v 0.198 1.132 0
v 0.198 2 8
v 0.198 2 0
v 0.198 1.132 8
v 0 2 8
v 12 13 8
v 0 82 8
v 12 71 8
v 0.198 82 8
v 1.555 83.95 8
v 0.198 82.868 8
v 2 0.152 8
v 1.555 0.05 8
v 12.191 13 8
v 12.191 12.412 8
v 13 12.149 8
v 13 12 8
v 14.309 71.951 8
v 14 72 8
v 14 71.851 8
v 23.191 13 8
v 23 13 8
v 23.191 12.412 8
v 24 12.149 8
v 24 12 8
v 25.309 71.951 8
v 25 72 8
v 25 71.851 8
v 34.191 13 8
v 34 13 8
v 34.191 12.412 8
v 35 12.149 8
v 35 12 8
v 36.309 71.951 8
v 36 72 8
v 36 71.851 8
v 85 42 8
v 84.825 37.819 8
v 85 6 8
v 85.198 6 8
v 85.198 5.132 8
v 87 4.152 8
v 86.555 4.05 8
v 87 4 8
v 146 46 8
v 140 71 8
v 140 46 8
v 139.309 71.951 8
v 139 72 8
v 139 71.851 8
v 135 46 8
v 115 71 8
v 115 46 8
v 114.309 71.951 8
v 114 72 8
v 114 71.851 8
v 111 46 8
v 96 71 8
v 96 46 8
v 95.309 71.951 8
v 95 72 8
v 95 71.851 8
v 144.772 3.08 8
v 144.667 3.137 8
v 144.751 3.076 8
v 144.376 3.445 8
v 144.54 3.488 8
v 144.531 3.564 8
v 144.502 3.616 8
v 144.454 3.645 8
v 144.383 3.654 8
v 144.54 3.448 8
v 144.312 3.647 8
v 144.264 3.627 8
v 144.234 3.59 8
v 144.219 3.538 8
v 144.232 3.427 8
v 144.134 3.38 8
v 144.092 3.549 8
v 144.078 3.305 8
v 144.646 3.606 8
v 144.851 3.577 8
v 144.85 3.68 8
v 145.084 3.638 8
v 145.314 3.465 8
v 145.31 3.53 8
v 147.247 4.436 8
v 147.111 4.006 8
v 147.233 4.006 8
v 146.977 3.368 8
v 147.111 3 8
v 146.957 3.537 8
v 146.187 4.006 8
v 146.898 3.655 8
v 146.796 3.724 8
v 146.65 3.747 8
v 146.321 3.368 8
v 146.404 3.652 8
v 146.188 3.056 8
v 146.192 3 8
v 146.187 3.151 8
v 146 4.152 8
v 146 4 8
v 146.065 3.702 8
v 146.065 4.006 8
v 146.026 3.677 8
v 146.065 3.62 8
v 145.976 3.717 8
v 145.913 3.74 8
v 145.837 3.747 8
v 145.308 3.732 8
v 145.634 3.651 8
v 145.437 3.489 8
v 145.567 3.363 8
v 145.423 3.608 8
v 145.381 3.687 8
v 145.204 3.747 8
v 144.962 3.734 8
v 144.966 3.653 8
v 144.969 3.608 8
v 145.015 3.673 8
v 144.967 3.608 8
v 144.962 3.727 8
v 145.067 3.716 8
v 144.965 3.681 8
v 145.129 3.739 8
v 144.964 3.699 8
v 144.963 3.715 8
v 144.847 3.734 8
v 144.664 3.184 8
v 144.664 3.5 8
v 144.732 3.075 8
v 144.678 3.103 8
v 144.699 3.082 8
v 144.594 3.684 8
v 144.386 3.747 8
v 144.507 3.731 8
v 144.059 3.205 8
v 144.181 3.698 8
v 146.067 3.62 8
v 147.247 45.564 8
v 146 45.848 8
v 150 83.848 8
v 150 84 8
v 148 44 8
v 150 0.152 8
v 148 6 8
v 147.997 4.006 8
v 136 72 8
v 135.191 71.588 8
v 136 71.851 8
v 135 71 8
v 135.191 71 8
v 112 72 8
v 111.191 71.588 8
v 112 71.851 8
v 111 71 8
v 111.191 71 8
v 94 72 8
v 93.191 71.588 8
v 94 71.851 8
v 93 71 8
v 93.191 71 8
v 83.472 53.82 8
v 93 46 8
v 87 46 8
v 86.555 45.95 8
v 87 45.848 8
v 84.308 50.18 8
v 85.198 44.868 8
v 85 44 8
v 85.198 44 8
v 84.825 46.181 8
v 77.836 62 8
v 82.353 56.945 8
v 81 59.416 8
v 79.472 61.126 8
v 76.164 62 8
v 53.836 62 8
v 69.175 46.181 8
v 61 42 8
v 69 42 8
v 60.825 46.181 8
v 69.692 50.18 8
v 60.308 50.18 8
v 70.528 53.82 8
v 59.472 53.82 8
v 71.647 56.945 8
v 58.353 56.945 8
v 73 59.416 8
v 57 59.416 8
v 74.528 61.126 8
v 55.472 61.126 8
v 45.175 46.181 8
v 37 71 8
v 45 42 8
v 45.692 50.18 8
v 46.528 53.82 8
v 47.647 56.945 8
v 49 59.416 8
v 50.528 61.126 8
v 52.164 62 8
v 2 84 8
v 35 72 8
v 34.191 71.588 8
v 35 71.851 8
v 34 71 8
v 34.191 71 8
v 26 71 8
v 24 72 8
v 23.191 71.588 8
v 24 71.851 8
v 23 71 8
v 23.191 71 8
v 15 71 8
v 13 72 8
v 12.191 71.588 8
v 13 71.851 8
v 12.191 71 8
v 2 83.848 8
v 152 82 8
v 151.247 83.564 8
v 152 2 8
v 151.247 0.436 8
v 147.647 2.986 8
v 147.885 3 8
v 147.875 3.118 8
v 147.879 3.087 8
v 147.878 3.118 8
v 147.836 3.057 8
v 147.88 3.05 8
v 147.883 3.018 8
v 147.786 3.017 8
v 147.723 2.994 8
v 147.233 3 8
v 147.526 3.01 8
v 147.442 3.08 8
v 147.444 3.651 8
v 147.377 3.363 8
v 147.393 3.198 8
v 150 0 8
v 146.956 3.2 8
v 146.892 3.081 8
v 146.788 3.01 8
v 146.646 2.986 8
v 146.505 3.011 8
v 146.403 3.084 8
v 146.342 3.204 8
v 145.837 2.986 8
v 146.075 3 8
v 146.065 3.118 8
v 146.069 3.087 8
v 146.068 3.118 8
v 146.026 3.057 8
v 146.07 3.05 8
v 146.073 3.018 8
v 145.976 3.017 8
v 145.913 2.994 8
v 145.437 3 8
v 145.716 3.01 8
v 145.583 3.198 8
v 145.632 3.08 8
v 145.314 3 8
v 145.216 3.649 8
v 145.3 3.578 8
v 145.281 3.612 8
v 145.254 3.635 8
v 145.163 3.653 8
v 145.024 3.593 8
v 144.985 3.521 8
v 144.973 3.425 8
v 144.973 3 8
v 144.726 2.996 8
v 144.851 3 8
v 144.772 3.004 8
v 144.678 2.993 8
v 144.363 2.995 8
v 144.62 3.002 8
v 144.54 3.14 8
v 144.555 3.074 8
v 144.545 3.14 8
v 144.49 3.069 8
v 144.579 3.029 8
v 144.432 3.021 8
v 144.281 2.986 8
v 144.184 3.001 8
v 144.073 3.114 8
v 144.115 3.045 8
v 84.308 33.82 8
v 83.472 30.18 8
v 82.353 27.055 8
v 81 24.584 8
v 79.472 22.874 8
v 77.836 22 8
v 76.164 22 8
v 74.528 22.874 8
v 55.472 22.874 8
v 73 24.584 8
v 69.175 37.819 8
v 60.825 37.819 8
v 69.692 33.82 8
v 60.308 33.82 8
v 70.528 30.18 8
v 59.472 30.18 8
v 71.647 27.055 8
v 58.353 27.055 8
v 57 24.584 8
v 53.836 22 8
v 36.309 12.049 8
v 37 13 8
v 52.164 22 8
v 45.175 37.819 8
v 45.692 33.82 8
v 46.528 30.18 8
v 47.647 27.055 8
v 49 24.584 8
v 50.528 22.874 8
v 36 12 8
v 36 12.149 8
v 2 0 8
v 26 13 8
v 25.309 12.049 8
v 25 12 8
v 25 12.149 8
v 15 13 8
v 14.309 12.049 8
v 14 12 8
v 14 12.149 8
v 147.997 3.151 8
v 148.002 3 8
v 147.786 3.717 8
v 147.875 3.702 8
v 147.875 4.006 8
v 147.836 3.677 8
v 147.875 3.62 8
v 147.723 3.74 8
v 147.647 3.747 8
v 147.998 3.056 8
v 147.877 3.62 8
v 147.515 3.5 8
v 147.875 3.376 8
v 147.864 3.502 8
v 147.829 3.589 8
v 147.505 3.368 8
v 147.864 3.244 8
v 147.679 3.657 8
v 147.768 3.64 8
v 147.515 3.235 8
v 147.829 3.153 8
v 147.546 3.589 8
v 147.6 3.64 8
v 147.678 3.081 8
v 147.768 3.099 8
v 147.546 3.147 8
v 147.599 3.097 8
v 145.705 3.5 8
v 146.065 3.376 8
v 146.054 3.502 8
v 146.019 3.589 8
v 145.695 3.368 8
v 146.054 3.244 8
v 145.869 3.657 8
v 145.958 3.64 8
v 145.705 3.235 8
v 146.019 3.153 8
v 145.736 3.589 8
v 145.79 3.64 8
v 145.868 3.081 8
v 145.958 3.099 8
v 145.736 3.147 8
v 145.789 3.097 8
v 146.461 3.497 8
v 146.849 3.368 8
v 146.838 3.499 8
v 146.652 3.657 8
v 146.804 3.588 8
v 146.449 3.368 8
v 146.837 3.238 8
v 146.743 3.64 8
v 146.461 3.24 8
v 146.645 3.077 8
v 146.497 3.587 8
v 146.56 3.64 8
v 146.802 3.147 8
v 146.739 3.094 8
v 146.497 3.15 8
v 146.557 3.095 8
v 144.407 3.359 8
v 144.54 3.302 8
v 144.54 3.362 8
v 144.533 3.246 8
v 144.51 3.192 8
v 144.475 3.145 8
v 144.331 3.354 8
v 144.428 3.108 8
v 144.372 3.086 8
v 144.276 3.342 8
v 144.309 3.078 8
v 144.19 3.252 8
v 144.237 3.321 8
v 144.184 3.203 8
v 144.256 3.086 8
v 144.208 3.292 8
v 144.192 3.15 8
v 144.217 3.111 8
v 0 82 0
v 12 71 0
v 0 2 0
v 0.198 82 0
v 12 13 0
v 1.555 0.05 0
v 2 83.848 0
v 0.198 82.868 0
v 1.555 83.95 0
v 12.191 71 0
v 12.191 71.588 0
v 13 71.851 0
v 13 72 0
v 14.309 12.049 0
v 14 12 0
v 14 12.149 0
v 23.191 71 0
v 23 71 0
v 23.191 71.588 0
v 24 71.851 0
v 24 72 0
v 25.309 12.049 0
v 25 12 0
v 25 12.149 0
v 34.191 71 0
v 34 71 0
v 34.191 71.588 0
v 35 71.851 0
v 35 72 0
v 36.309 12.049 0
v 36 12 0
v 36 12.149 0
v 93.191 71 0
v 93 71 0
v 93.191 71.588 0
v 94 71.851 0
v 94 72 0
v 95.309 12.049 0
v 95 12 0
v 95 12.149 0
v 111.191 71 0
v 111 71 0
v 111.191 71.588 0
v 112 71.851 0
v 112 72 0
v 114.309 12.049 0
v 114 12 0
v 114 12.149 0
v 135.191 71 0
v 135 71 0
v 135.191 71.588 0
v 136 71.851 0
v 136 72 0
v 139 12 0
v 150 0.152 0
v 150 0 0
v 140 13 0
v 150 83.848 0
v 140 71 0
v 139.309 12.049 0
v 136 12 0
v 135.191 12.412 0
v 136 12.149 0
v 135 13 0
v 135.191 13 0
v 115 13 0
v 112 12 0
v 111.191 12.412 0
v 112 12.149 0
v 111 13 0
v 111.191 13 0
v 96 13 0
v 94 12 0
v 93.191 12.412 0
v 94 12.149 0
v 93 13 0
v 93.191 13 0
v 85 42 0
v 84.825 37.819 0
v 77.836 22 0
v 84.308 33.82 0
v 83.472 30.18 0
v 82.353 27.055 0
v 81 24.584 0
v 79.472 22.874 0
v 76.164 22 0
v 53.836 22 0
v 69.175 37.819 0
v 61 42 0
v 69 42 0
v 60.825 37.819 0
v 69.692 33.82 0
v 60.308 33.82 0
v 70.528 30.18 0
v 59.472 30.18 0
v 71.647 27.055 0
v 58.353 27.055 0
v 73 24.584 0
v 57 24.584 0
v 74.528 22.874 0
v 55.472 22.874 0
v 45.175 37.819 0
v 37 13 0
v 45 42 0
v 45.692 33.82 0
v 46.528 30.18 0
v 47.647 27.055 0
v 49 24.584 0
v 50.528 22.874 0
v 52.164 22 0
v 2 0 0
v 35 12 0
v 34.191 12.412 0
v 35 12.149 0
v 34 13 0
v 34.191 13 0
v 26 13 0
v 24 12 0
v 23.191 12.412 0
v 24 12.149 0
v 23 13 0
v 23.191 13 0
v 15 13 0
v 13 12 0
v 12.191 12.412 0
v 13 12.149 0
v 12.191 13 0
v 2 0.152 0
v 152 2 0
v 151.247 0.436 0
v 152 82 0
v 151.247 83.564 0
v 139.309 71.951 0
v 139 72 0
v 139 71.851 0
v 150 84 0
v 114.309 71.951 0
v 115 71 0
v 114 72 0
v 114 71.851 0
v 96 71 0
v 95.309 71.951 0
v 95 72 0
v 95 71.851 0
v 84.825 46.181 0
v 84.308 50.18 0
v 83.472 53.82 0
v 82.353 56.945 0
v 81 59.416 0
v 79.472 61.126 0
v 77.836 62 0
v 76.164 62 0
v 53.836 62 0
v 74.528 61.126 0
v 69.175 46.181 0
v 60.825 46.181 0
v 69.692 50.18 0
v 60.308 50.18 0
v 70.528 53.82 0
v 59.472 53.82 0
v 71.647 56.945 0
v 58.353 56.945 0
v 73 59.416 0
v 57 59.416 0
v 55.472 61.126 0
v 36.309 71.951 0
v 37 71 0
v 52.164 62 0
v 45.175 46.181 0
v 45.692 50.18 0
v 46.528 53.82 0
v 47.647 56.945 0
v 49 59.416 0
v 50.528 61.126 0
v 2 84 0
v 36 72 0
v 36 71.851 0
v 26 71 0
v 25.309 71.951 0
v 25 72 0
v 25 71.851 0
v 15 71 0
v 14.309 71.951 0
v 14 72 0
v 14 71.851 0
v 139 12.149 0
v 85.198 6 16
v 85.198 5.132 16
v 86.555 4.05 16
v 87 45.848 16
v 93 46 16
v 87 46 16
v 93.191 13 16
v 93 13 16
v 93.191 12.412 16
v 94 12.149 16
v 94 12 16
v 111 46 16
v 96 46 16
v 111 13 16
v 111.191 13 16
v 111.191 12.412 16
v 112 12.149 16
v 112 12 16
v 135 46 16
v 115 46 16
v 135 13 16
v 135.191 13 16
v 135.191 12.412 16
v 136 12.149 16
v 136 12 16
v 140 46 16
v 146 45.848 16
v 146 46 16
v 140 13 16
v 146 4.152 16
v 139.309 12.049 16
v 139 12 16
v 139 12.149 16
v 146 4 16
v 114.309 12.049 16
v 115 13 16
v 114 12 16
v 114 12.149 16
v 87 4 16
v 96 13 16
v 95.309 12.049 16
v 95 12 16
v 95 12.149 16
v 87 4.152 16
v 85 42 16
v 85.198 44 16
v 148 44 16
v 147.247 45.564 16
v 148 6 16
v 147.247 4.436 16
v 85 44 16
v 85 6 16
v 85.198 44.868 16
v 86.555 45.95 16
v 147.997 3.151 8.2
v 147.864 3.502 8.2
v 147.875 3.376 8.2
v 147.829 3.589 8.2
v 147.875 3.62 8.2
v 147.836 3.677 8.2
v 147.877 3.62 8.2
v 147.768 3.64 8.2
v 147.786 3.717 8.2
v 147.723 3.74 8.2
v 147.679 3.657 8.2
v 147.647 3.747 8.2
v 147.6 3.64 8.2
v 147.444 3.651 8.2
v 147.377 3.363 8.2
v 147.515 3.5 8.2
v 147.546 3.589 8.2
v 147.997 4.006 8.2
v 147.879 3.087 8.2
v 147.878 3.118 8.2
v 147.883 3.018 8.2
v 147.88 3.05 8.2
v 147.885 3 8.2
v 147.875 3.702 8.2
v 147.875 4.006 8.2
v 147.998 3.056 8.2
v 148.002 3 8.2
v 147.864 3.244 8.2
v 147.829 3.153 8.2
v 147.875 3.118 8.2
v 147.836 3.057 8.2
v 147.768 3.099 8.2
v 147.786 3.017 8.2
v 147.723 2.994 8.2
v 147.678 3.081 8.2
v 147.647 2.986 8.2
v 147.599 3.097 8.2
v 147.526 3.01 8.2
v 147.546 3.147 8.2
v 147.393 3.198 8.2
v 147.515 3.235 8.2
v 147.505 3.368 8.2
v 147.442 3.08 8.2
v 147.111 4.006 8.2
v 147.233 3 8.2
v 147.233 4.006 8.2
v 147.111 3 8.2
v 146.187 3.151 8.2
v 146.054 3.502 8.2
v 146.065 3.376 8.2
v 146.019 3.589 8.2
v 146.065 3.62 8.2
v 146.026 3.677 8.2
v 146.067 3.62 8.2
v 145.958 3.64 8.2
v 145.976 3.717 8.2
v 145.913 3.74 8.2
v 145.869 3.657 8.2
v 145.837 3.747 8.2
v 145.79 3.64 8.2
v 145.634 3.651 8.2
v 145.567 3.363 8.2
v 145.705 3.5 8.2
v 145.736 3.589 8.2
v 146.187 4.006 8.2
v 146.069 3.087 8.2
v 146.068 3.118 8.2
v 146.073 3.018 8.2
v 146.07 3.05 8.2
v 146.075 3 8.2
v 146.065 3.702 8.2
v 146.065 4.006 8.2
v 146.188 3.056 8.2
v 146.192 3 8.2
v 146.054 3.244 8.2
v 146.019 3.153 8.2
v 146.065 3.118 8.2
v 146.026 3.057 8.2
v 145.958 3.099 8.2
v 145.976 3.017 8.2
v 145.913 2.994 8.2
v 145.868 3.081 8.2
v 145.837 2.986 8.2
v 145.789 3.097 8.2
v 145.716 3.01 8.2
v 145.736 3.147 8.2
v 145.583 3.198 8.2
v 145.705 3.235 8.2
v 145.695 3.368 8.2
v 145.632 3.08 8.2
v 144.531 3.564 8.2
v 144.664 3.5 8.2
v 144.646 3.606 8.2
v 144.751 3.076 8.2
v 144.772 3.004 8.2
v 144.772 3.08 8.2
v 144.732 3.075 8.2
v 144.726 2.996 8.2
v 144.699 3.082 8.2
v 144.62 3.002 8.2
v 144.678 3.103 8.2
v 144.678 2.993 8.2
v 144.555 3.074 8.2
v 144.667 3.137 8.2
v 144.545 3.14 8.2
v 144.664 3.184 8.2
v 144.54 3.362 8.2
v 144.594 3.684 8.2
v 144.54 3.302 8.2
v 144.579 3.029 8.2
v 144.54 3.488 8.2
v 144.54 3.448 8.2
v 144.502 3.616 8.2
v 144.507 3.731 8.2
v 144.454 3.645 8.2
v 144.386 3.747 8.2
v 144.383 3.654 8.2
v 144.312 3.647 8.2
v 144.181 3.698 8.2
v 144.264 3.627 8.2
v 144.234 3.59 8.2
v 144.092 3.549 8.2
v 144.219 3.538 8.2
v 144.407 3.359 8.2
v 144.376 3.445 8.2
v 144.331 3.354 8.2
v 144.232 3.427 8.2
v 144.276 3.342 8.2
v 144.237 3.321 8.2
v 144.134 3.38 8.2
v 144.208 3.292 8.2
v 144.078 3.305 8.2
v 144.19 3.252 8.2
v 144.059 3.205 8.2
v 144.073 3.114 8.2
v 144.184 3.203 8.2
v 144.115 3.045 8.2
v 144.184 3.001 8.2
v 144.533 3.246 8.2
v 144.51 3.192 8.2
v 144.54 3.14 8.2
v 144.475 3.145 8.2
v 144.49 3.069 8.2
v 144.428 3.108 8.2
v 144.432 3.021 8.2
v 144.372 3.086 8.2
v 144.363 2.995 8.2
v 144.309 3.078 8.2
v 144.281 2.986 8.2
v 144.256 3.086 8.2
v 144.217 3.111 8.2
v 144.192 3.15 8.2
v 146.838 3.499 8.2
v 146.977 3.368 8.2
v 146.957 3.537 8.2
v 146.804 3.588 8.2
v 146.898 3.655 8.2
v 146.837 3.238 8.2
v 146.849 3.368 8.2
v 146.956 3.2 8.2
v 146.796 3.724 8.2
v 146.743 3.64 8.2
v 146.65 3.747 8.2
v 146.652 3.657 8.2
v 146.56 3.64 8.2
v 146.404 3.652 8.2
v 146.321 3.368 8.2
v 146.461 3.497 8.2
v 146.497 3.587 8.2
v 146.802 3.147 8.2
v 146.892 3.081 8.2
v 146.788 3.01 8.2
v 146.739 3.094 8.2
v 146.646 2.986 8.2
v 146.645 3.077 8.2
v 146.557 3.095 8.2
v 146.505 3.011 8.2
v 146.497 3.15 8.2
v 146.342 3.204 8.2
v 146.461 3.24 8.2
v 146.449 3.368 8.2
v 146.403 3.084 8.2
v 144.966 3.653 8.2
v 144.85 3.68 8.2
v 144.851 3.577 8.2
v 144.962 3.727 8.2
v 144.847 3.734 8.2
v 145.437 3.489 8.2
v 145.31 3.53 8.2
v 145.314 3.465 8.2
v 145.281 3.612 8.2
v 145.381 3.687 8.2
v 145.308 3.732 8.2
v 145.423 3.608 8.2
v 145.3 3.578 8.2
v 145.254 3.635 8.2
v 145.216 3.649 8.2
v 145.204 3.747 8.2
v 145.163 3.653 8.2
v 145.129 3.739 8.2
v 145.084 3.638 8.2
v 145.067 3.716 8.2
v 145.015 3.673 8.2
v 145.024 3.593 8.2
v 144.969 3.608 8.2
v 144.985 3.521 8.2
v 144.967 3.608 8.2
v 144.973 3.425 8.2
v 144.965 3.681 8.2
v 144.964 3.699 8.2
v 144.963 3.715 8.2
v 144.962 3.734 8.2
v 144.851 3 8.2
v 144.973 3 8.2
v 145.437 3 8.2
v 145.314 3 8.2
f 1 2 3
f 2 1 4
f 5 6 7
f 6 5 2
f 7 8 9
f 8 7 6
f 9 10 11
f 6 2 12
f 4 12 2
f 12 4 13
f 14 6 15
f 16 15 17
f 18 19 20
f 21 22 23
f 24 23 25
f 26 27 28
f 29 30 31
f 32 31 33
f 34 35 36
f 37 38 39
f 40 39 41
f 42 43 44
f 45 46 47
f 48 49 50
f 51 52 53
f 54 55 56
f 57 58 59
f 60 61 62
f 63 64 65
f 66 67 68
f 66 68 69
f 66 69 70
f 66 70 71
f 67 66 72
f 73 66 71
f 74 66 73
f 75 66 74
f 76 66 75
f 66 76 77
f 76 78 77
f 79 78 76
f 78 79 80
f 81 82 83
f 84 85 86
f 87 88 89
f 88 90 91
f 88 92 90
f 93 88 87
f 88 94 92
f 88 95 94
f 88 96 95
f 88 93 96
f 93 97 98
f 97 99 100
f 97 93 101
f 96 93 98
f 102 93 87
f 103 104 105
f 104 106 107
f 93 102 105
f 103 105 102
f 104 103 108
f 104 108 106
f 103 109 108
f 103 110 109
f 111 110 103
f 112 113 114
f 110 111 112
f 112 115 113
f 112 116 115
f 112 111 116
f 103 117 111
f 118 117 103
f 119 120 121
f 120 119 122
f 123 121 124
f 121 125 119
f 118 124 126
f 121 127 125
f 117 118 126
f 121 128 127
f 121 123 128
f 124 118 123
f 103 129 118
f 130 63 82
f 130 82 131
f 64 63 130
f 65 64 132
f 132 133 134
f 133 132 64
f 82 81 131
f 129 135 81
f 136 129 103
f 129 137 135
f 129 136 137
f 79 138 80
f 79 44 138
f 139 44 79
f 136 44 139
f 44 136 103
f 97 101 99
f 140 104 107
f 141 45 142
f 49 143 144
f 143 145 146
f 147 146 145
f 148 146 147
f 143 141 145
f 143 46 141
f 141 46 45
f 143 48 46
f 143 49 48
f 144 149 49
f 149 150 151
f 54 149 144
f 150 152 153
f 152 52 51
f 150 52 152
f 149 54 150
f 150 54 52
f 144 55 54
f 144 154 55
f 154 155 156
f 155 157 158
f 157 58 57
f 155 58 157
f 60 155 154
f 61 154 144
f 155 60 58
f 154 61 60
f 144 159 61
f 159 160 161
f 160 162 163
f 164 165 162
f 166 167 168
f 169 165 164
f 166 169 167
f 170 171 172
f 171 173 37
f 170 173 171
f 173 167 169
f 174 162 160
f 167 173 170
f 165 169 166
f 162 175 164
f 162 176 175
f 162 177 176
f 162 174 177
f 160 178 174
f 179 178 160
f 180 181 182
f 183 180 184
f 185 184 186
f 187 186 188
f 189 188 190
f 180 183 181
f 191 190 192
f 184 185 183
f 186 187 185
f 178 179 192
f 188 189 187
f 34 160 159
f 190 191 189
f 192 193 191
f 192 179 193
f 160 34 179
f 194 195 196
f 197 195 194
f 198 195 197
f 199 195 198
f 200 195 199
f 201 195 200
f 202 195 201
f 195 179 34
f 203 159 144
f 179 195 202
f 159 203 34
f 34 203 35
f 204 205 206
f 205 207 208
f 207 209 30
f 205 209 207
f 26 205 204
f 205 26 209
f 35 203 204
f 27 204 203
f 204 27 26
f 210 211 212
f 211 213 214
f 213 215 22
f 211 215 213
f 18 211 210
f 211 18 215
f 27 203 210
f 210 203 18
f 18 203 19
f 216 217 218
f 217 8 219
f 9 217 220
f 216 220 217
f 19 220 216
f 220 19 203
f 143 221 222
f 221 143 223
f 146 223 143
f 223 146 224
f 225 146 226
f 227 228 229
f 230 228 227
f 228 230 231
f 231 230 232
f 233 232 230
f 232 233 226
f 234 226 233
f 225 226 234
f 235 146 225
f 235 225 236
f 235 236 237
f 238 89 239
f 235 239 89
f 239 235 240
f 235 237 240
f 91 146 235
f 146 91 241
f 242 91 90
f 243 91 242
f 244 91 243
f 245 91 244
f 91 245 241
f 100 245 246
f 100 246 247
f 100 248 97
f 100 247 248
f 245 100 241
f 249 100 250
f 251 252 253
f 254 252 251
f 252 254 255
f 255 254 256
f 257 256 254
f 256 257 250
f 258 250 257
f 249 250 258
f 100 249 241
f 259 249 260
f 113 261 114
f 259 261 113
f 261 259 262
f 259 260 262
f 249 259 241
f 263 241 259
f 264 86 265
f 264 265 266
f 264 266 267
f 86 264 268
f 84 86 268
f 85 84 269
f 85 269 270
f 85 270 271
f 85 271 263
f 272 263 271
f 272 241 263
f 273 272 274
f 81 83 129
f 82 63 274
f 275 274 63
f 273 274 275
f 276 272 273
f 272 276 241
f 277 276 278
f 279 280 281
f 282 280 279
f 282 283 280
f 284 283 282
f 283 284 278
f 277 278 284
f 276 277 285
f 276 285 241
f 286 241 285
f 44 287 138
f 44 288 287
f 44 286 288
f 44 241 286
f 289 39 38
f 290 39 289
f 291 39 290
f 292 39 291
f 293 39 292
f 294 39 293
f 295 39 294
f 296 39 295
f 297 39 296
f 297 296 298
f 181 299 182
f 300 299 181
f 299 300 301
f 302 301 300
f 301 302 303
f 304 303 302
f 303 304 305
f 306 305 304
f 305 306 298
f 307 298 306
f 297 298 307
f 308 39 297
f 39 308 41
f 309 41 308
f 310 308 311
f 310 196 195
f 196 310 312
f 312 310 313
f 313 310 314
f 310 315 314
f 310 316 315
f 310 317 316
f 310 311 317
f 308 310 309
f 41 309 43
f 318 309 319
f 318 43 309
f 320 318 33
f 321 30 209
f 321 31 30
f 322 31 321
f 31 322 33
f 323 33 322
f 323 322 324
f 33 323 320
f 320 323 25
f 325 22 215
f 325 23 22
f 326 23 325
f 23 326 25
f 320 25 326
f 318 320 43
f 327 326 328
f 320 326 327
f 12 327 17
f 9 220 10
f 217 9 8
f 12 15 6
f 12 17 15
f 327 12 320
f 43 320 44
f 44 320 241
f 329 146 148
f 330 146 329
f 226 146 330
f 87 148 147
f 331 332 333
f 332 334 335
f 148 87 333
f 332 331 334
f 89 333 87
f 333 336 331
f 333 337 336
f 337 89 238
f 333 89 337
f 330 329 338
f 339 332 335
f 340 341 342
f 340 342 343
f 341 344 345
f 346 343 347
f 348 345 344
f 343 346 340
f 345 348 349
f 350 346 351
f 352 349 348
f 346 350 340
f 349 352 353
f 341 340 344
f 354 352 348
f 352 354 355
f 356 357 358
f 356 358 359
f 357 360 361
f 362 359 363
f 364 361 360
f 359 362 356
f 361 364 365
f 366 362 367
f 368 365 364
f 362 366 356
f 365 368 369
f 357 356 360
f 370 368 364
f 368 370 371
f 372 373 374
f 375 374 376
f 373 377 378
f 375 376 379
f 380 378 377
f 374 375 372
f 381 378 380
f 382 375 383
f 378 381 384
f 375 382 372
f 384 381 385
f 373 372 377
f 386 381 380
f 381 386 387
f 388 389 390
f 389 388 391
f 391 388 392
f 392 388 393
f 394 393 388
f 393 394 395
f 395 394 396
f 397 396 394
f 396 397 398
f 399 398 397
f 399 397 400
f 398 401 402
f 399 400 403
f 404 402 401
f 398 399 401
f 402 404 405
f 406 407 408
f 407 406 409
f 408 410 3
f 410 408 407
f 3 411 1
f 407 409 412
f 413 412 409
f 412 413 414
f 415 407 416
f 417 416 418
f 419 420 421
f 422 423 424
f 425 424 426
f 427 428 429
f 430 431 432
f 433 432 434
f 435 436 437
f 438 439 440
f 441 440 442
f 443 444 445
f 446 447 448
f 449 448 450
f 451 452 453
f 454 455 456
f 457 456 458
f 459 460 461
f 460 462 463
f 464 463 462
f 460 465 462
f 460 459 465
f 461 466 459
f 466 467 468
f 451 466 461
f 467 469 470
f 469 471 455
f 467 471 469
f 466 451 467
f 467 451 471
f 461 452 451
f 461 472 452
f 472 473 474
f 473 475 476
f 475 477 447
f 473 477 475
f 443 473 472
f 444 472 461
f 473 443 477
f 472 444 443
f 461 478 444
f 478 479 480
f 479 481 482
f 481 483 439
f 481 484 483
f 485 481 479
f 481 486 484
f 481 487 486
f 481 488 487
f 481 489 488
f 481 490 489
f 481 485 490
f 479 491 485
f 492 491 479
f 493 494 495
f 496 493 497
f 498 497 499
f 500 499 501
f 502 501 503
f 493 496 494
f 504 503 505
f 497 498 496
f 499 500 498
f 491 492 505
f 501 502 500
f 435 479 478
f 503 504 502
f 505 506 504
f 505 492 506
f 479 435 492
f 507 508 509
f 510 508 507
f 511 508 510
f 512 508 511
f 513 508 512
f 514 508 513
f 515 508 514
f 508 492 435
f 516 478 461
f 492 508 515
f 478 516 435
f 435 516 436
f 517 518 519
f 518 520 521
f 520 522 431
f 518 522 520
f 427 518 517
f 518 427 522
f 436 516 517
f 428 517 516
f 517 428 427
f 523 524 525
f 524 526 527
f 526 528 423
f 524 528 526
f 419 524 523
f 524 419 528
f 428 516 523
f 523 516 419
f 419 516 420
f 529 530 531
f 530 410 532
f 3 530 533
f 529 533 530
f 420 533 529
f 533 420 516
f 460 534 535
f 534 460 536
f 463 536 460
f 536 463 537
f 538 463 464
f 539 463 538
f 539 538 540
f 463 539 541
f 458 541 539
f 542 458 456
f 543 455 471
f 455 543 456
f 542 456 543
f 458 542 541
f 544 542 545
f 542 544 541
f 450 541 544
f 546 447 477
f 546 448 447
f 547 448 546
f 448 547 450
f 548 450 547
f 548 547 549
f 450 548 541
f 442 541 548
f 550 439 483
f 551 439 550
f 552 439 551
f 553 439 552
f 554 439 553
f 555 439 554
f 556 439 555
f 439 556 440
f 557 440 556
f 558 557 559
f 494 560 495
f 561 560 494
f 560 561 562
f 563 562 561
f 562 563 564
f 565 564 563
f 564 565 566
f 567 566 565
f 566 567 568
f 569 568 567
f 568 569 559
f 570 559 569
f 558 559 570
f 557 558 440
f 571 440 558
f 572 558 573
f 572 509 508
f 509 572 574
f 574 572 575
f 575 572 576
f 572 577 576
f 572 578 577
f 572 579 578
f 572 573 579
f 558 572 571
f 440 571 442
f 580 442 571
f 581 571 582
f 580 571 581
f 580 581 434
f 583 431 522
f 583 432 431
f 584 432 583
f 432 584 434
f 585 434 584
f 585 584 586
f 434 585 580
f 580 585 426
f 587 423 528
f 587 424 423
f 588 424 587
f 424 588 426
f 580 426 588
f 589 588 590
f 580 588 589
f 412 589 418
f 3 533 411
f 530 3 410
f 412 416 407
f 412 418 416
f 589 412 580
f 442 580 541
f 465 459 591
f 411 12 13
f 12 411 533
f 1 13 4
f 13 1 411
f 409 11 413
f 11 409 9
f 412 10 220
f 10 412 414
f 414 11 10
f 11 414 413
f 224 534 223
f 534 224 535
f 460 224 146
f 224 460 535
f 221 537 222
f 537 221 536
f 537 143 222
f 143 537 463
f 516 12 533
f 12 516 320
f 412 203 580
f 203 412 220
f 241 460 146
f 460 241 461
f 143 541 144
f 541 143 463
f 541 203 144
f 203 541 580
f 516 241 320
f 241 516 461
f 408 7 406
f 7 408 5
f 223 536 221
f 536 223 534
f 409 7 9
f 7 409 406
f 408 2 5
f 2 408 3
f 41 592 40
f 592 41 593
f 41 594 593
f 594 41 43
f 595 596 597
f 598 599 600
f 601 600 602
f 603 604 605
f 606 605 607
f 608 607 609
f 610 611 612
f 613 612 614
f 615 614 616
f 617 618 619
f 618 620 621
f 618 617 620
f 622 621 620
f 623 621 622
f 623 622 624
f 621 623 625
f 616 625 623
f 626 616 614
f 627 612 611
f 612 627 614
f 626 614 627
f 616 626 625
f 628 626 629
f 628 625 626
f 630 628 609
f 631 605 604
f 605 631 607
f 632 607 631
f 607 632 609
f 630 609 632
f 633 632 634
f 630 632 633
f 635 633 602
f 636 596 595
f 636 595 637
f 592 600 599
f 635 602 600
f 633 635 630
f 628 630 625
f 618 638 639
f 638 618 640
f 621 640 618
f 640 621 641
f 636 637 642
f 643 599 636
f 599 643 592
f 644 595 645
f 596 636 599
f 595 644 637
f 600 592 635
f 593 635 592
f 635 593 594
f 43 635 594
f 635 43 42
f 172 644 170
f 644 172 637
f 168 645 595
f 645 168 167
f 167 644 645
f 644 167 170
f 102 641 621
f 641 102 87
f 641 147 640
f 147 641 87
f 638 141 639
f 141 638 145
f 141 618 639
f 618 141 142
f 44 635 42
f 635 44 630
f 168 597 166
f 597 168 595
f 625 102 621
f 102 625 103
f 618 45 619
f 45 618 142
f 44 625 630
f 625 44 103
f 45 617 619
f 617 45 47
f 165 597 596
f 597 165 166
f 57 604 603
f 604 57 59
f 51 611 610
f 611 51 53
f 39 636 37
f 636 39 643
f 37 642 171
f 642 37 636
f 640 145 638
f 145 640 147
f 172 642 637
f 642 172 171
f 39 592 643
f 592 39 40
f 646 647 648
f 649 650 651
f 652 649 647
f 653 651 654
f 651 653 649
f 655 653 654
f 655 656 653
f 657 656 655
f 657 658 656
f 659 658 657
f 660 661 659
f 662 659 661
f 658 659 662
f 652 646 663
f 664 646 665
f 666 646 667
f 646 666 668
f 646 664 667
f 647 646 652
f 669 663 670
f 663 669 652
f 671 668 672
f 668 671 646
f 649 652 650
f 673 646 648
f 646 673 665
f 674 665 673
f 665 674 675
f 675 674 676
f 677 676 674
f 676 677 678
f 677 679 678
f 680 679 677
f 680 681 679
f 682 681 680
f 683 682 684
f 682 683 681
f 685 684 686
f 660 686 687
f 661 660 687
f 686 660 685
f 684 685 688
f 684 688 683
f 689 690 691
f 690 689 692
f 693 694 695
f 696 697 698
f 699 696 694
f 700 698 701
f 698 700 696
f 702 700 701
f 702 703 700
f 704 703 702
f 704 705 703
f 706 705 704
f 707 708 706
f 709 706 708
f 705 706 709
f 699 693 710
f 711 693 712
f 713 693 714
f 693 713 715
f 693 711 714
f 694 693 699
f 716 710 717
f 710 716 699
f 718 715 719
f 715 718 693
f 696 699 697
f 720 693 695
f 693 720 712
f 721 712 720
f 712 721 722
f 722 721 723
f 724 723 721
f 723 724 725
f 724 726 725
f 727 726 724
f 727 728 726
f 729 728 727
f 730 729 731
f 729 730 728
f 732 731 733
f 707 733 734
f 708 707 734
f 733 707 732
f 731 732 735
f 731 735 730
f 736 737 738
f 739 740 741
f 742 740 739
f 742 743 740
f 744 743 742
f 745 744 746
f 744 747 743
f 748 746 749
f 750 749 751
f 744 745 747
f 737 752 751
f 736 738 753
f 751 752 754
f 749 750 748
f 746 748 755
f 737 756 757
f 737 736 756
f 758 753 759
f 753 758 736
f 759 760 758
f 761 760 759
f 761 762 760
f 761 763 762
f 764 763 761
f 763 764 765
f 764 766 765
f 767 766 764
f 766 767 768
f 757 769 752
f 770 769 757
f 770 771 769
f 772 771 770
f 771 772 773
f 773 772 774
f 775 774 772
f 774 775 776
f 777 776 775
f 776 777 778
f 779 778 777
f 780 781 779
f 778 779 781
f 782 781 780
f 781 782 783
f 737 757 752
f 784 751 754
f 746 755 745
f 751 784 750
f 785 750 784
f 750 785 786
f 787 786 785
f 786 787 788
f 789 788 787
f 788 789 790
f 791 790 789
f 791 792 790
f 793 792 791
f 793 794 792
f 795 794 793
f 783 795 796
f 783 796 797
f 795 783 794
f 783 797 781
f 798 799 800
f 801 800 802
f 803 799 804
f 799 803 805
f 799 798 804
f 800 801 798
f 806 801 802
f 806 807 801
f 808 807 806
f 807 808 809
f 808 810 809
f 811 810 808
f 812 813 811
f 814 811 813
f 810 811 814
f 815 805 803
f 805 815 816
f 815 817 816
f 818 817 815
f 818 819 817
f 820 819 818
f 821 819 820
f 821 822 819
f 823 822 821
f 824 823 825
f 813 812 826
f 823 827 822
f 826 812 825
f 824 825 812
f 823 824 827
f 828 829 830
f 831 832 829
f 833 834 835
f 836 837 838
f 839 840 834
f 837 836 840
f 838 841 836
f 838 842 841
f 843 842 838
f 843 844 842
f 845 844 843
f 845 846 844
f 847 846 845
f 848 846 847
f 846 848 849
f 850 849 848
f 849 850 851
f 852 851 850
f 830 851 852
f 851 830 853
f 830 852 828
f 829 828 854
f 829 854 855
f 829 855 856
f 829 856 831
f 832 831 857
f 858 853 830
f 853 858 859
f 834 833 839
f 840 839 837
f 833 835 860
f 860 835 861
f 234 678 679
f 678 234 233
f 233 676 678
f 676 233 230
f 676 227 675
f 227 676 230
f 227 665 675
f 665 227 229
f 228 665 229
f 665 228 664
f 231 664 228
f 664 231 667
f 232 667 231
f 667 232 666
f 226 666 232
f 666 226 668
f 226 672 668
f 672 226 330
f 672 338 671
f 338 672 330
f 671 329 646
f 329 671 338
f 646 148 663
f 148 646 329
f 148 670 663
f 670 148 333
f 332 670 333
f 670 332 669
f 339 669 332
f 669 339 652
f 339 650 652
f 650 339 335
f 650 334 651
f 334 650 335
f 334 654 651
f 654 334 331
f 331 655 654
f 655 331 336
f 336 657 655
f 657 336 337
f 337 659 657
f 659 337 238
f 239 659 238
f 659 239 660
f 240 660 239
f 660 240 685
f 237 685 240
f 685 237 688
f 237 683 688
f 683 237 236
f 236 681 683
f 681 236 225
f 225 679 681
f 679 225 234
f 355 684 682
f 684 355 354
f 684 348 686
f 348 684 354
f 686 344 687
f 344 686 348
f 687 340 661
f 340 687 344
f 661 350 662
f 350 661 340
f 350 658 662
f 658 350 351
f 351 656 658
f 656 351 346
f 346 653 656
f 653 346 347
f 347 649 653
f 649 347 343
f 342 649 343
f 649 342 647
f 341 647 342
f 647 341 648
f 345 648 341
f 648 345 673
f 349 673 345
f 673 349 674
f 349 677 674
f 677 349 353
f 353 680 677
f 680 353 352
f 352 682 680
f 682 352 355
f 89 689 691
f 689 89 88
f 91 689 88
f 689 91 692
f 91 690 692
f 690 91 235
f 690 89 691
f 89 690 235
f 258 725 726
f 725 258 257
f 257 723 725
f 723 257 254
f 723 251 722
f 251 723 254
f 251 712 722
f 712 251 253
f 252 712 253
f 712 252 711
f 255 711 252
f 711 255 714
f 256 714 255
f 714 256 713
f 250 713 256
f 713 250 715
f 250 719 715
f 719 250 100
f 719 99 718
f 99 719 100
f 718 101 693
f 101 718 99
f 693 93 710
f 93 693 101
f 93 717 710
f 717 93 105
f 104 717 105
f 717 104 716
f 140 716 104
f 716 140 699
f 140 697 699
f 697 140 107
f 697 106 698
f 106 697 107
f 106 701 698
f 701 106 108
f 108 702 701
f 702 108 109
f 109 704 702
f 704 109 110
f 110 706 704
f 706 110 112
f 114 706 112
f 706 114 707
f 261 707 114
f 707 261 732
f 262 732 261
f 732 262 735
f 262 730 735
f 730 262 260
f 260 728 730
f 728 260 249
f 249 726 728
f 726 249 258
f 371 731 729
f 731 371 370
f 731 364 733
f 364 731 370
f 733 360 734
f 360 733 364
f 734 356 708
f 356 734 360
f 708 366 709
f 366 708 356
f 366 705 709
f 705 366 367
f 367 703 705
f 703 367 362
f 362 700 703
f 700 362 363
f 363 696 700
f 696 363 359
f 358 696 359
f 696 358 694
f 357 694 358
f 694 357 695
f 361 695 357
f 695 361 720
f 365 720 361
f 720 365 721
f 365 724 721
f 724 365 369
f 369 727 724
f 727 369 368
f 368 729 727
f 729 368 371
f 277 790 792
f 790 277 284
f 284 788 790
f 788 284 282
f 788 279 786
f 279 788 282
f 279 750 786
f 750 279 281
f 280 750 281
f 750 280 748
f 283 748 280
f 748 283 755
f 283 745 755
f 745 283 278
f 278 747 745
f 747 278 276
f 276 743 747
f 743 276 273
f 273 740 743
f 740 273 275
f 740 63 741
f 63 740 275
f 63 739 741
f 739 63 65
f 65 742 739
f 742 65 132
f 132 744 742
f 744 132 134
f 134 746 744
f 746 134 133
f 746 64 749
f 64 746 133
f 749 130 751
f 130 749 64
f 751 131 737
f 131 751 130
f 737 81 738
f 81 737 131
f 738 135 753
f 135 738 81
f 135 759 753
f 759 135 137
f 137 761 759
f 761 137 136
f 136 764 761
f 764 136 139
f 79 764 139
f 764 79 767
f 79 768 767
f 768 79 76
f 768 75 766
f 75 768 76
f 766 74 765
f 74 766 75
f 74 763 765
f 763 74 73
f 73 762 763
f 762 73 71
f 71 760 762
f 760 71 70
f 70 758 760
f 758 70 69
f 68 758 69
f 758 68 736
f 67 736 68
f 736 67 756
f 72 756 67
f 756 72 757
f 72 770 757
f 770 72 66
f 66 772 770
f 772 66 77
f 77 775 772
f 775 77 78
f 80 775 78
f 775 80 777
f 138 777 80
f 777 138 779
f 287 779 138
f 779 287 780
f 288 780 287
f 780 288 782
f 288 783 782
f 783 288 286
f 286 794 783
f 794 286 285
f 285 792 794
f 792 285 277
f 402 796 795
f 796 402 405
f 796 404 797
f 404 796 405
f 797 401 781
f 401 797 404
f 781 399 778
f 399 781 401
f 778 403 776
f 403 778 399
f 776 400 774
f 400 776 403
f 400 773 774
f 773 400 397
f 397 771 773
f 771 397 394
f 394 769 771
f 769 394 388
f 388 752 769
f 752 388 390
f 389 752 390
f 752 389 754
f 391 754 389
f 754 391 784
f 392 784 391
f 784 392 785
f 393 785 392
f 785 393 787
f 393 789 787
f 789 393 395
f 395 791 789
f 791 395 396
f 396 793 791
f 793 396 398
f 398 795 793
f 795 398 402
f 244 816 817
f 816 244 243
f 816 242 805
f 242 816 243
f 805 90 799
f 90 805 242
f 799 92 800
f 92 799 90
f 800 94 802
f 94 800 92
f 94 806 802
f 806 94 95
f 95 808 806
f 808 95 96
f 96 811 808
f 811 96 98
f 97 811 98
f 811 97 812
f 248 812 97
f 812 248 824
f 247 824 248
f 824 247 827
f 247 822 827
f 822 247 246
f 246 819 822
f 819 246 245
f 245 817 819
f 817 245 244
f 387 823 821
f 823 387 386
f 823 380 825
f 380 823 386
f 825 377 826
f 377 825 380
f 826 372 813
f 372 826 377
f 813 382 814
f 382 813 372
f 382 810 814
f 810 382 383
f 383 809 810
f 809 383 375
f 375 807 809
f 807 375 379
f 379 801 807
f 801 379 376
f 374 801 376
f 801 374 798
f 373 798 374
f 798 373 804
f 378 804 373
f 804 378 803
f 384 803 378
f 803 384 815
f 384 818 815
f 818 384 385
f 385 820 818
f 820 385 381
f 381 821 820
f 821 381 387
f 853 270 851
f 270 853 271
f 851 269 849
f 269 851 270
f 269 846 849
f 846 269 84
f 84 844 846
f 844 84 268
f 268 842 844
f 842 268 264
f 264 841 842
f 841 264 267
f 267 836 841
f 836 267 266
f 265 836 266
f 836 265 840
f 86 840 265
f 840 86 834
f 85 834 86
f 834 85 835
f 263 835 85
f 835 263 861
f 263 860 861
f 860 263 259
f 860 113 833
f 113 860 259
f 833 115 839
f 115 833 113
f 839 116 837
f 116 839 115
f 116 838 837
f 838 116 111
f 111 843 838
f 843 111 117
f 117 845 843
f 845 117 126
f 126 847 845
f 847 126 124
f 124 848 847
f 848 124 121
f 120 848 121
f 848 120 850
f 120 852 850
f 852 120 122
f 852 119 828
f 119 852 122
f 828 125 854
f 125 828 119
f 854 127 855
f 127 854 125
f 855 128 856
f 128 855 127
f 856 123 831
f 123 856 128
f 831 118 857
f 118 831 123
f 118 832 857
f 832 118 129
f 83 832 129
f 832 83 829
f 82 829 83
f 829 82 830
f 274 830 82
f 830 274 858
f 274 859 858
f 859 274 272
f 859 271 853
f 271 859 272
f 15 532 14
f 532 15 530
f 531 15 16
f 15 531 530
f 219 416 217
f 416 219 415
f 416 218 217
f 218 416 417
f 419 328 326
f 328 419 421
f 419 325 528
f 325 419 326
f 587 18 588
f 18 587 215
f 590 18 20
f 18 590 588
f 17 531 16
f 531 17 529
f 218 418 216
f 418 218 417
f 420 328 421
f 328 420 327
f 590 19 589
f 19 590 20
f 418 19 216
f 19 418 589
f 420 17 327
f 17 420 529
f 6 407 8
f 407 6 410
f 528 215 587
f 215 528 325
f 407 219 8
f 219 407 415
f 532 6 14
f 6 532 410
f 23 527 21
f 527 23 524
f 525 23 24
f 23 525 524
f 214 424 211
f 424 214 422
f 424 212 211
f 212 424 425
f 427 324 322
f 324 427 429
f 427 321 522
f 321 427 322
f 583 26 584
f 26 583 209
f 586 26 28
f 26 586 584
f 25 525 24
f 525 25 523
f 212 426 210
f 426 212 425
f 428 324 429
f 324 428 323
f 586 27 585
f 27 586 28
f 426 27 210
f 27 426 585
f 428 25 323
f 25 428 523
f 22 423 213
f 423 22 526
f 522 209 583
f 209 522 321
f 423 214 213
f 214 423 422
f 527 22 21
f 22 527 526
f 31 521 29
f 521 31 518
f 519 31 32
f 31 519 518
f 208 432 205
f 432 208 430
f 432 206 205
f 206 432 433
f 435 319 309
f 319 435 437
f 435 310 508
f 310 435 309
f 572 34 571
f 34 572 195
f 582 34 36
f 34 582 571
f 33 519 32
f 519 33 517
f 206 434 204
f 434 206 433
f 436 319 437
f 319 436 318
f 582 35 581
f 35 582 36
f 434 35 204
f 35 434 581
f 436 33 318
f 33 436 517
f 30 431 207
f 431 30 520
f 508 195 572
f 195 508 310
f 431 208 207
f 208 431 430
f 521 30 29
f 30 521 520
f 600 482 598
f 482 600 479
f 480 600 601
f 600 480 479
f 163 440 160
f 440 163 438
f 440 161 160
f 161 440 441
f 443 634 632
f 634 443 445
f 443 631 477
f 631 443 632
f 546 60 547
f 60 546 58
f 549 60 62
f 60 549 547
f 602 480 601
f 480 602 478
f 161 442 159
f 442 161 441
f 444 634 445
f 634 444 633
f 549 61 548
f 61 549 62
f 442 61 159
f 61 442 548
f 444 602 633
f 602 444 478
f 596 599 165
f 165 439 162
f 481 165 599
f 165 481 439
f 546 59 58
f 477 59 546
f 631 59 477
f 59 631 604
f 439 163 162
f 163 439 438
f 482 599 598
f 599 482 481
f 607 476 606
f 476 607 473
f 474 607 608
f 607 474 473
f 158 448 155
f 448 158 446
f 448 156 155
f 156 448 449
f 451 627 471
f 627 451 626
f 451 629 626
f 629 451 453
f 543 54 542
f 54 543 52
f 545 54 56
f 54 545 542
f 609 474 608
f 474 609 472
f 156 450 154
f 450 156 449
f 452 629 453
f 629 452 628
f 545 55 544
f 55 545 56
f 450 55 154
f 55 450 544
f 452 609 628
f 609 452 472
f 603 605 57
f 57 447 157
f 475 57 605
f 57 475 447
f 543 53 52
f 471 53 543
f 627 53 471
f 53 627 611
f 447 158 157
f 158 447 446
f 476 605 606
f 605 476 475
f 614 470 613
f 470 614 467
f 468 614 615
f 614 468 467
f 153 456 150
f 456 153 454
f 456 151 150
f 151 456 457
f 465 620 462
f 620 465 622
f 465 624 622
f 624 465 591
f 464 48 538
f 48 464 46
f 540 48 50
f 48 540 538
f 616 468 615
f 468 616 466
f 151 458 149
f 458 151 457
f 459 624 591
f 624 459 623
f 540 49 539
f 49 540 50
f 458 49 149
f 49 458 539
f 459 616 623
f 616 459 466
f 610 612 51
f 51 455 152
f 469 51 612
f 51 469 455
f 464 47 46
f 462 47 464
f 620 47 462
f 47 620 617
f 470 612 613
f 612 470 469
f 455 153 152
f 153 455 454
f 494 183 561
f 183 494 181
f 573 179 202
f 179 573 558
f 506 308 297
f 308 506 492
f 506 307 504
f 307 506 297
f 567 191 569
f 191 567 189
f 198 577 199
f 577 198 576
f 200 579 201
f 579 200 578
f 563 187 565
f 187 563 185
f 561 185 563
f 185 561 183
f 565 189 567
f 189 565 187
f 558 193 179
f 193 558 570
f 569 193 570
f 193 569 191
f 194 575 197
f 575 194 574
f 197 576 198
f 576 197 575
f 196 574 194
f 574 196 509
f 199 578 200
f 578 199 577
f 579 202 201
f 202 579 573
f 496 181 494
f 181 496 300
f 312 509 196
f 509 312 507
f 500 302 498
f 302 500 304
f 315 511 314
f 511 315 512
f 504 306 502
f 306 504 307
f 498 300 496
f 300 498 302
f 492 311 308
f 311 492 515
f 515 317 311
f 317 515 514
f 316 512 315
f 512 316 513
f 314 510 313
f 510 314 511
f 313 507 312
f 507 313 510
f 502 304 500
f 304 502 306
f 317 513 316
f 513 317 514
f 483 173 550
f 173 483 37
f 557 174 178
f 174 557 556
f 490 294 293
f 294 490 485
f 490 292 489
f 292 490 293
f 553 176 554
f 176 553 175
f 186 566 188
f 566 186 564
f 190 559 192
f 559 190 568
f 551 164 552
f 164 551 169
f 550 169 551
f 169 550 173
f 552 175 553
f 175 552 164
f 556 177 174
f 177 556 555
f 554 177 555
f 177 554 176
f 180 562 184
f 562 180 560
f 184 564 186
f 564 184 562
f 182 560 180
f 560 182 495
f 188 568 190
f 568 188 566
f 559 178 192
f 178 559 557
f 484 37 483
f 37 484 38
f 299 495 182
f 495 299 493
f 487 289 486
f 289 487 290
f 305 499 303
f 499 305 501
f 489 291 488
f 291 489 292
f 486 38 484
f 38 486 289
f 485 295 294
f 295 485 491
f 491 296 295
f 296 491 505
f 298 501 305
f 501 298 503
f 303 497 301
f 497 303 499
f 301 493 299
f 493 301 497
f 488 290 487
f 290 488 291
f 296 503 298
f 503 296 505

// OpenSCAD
// file: ../etc/utils.scad
use <MCAD/boxes.scad>

BIG = [1024, 1024, 1024];
EPSILON = 0.01;

module note(x, y, z, centered = false, fontSize = 1) {
	mm = " mm";	//	"㎜";
	center = centered ? [-x / 2, -y / 2, -z / 2] : [0, 0, 0];
	#color("Black")
	rotate([0, 0, $t])
	translate(center)
	{
		// x, z view
		translate([x / 2, y - fontSize * 1.5, z + EPSILON])
			linear_extrude(EPSILON, center = true)	text(str(x, mm), size = fontSize, halign = "center", language = "kr", font = "NanumGothic");
		translate([x / 2, fontSize * 1.5, z + EPSILON])
			rotate([0, 0, 180])
			linear_extrude(EPSILON, center = true)	text(str(x, mm), size = fontSize, halign = "center", language = "kr", font = "NanumGothic");

		// x, -z view
		translate([x / 2, y - fontSize * 0.5, -EPSILON])
			rotate([180, 0, 0])
			linear_extrude(EPSILON, center = true)	text(str(x, mm), size = fontSize, halign = "center", language = "kr", font = "NanumGothic");
		translate([x / 2, fontSize * 0.5, -EPSILON])
			rotate([180, 0, 180])
			linear_extrude(EPSILON, center = true)	text(str(x, mm), size = fontSize, halign = "center", language = "kr", font = "NanumGothic");

		// x, y view
		translate([x / 2, y + EPSILON, z - fontSize * 1.5])
			rotate([90, 0, 180])
			linear_extrude(EPSILON, center = true)	text(str(x, mm), size = fontSize, halign = "center", language = "kr", font = "NanumGothic");
		translate([x / 2, y + EPSILON, fontSize * 1.5])
			rotate([90, 180, 180])
			linear_extrude(EPSILON, center = true)	text(str(x, mm), size = fontSize, halign = "center", language = "kr", font = "NanumGothic");

		// x, -y view
		translate([x / 2, -EPSILON, z - fontSize * 1.5])
			rotate([90, 0, 0])
			linear_extrude(EPSILON, center = true)	text(str(x, mm), size = fontSize, halign = "center", language = "kr", font = "NanumGothic");
		translate([x / 2, -EPSILON, fontSize * 1.5])
			rotate([90, 180, 0])
			linear_extrude(EPSILON, center = true)	text(str(x, mm), size = fontSize, halign = "center", language = "kr", font = "NanumGothic");

		// y, z view
		translate([fontSize * 1.5, y / 2, z + EPSILON])
			rotate([0, 0, 90])
			linear_extrude(EPSILON, center = true)	text(str(y, mm), size = fontSize, halign = "center", language = "kr", font = "NanumGothic");
		translate([x - fontSize * 1.5, y / 2, z + EPSILON])
			rotate([0, 0, -90])
			linear_extrude(EPSILON, center = true)	text(str(y, mm), size = fontSize, halign = "center", language = "kr", font = "NanumGothic");

		// z, -y view
		translate([fontSize * 1.5, -EPSILON, z / 2])
			rotate([90, -90, 0])
			linear_extrude(EPSILON, center = true)	text(str(z, mm), size = fontSize, halign = "center", language = "kr", font = "NanumGothic");
		translate([x - fontSize * 1.5, -EPSILON, z / 2])
			rotate([90, 90, 0])
			linear_extrude(EPSILON, center = true)	text(str(z, mm), size = fontSize, halign = "center", language = "kr", font = "NanumGothic");
	}
}
//size = [64, 32, 8]; cube(size); note(size[0], size[1], size[2], fontSize = 1);
//rotate([0, 0, $t * 360])	translate([50, 0, 0])	sphere(10);

module boardPattern(size = [128, 64, 4], degree = 60, stick = [THICK, THICK, 32]) {
	intersection() {
		cube([size[0], size[1], stick[1]]);
		for (dx = [-1024: stick[2]: 1024]) {
			translate([dx, -cos(degree) * stick[1], -1])	rotate([0, 0, degree])	cube([1024, stick[0], stick[1]]);
			mirror([1, 0, 0])
			translate([dx, -cos(degree) * stick[1], -1])	rotate([0, 0, degree])	cube([1024, stick[0], stick[1]]);
		}
	}
}
module mark(name, height, size = 2) {
	linear_extrude(height, center = false)	text(name, size = size);
}
module hole(w, h, z) {
	translate([w / 2, h / 2, z / 2])		roundedBox(size=[w, h, z], radius = w / 4, sidesonly = true);
}
module ellipsis(w = 32, h = 16, z = 4) {
	translate([w / 2, h / 2, 0])
		resize([w, h, z])
			cylinder(1024, 1024, 1024);
}
module cornerHole(base, m, in, out, height) {
	delta = (out - in) / 2;
		translate([m,					m,					0])	ellipsis(in, in);
		translate([base[0] - m,	m,					0])	ellipsis(in, in);
		translate([base[0] - m,	base[1] - m,		0])	ellipsis(in, in);
		translate([m,					base[1] - m,		0])	ellipsis(in, in);

		translate([m - delta,					m - delta,					height])	ellipsis(out, out);
		translate([base[0] - m  - delta,	m - delta,					height])	ellipsis(out, out);
		translate([base[0] - m  - delta,	base[1] - m - delta,	height])	ellipsis(out, out);
		translate([m - delta,					base[1] - m - delta,	height])	ellipsis(out, out);
}
module lineBox(outter = [100, 100, 100], t = 2) {
	size = outter - [t*2, t*2, t*2];
	center = false;

	translate([t, t, t])	{
		
	// x
	translate([0, 0, 0])						rotate([0, 90, 0])		cylinder(h = size[0], r = t, center = center);
	translate([0, size[1], 0])			rotate([0, 90, 0])		cylinder(h = size[0], r = t, center = center);
	translate([0, size[1], size[2]])	rotate([0, 90, 0])		cylinder(h = size[0], r = t, center = center);
	translate([0, 0, size[2]])			rotate([0, 90, 0])		cylinder(h = size[0], r = t, center = center);

	// y
	translate([0, 0, 0])						rotate([270, 0, 0])		cylinder(h = size[1], r = t, center = center);
	translate([size[0], 0, 0])			rotate([270, 0, 0])		cylinder(h = size[1], r = t, center = center);
	translate([size[0], 0, size[2]])	rotate([270, 0, 0])		cylinder(h = size[1], r = t, center = center);
	translate([0, 0, size[2]])			rotate([270, 0, 0])		cylinder(h = size[1], r = t, center = center);

	// z
	translate([0, 0, 0])						rotate([0, 0, 0])		cylinder(h = size[2], r = t, center = center);
	translate([size[0], 0, 0])			rotate([0, 0, 0])		cylinder(h = size[2], r = t, center = center);
	translate([size[0], size[1], 0])	rotate([0, 0, 0])		cylinder(h = size[2], r = t, center = center);
	translate([0, size[1], 0])	rotate([0, 0, 0])				cylinder(h = size[2], r = t, center = center);
	}
}
module hide(show = 0) {
	if (show > 0) children();
	else scale([0, 0, 0])	children();
}

module t() {
	c = [0.5, 0.5, 0.5, 0.5];
	d = [0.5, 0.5, 0.0, 0.5];
	
	color(c)	difference() {
		cube([4, 16, 2]);
		translate([2, -2, -1])	cube([4, 4, 4]);
	}
	color(d)	translate([8, 0, 0])	cube([16, 4, 2]);
}
// file: ../etc/corner-hole.scad
module ellipsis(w, h) {
	translate([w / 2, h / 2, 0])
		resize([w, h, 1024])
			cylinder(1024, 1024, 1024);
}
module cornerHole(base, m, in, out, height) {
	delta = (out - in) / 2;
		translate([m,					m,					0])	ellipsis(in, in);
		translate([base[0] - m,	m,					0])	ellipsis(in, in);
		translate([base[0] - m,	base[1] - m,		0])	ellipsis(in, in);
		translate([m,					base[1] - m,		0])	ellipsis(in, in);

		translate([m - delta,					m - delta,					height])	ellipsis(out, out);
		translate([base[0] - m  - delta,	m - delta,					height])	ellipsis(out, out);
		translate([base[0] - m  - delta,	base[1] - m - delta,	height])	ellipsis(out, out);
		translate([m - delta,					base[1] - m - delta,	height])	ellipsis(out, out);
}
// file: common.scad
use <MCAD/boxes.scad>
use <../etc/corner-hole.scad>
use <../etc/utils.scad>

PALETTE = [
	[0.3, 0.1, 0.0, 1.0],	//	갈색, 칼손잡이
	[0.5, 0.5, 0.5, 0.5],	//	회색, 칼날
	[0.9, 0.9, 0.9, 1.0],	//	흰색, 상판
	[0.0, 0.0, 0.9, 0.5],	//	파랑
	[0.0, 0.0, 0.0, 0.0]	//	검정 투명, 호환성 예약
];
ZERO = [0, 0, 0];
HALF = [1/2, 1/2, 1/2];
ONE = [1, 1, 1];
EPSILON = 0.1;

// export
function chefsInfo(delta = 8)  = [(3 + 3 + 3) + (16 + 16) + delta * 5, (3 + 4 + 5) + (15 + 20)];	//	[x위치, 길이]
function coreWidth(delta = 8)  = (3 + 3 + 3) + (16 + 16) + delta * 5 + chefsInfo(delta)[1];
function coreSize(delta = 8, thick = 8)  = [coreWidth(delta), 60, thick];

module test(delta = 4) {
	a = [];
	dx = 0;
	for (cx = [0:delta: 256]) {
		dx = dx + delta;
		a = concat(a, [dx]);
		echo(dx, a);
	}
}
//test();

module	roundedBoxNotCenter(size = [32, 64, 8], radius = 8, sidesonly = true) {
	translate([size[0] / 2, size[1] / 2, size[2] / 2])		roundedBox(size, radius, sidesonly);
}

// export
module punch(height = 60, thick = 8, delta = 8) {
	// 과도, 빵칼
	breadStart = 0;
	translate([breadStart, 0, 0])					roundedBoxNotCenter([3, height, thick], 1);
	translate([breadStart + (3 + delta), 0, 0])		roundedBoxNotCenter([3, height, thick], 1);
	translate([breadStart + (3 + delta) * 2, 0, 0])	roundedBoxNotCenter([3, height, thick], 1);
	breadLength = (3 + delta) * 2 + 3;

	// 가위
	scissorStart = breadStart + breadLength + delta;
	scissor = [16, 40];
	translate([scissorStart,						(height - scissor[1]) / 2, 0])	ellipsis(scissor[0], scissor[1], thick);
	translate([scissorStart + scissor[0] + delta,	(height - scissor[1]) / 2, 0])	ellipsis(scissor[0], scissor[1], thick);
	scissorLength = scissor[0] * 2 + delta;
	
	//	식도
	chefsStart = scissorStart + scissorLength + delta;
	translate([chefsStart, 0, 0])						roundedBoxNotCenter([3, height, thick], 1);
	translate([chefsStart + 3 + 15, 0, 0])				roundedBoxNotCenter([4, height, thick], 1);
	translate([chefsStart + (3 + 4) + (15 + 20), 0, 0])	roundedBoxNotCenter([5, height, thick], 1);
	chefsLength = (3 + 4 + 5) + (15 + 20);
	echo("last x position, ie width", delta, breadStart, breadLength, scissorStart, scissorLength, chefsStart, chefsLength);
}
punch();
// main file
use <MCAD/boxes.scad>
use <common.scad>
use <../etc/corner-hole.scad>
use <../etc/utils.scad>

PALETTE = [
	[0.3, 0.1, 0.0, 0.5],	//	갈색, 칼손잡이
	[0.5, 0.5, 0.5, 0.5],	//	회색, 칼날
	[0.9, 0.9, 0.9, 1.0],	//	흰색, 상판
	[0.0, 0.0, 0.9, 0.5],	//	파랑
	[0.0, 0.0, 0.0, 0.0]	//	검정 투명, 호환성 예약
];
ZERO = [0, 0, 0];
EPSILON = 0.1;

// export
function landscapeSize(thick, margin, delta)  = coreSize(delta, thick) + [margin * 2, margin * 2, 0];
module landscape(thick, margin, delta, prototype) {
	base =  landscapeSize(thick, margin, delta);	//	상판

	difference() {
		union() {
			//	상판
			color(c=PALETTE[2])
				translate([base[0] / 2, base[1] / 2, thick / 2])
				roundedBox(base, 2, true);
			
			//	서명
			color(c=PALETTE[1])		translate([base[0] - margin / 2 - 2, margin / 4, thick])		mark("andold", 0.2, 1);

			//	손잡이
			chefsInfo = chefsInfo();
			translate([margin + chefsInfo[0] - thick, margin - thick, 0])		color(c=PALETTE[0])
			roundedBoxNotCenter([chefsInfo[1] + thick * 2, base[1] / 2, thick * 2], 2, true);
		}
		translate([margin, margin, -EPSILON])	punch(60, 16 + EPSILON * 2, 8);
	}
}

thick = 8;
margin = 12;
delta = 8;
prototype = false;
module build(thick, margin, delta, prototype) {
	echo("landscape build start: ", thick, margin, delta, prototype);

	if (prototype) {
		scale([1/2, 1/2, 1/2])	landscape(thick, margin, delta, prototype);
	} else {
		landscape(thick, margin, delta, prototype);
	}

	echo("landscape build done: ", thick, margin, delta, prototype);
}

build(thick, margin, delta, prototype);
